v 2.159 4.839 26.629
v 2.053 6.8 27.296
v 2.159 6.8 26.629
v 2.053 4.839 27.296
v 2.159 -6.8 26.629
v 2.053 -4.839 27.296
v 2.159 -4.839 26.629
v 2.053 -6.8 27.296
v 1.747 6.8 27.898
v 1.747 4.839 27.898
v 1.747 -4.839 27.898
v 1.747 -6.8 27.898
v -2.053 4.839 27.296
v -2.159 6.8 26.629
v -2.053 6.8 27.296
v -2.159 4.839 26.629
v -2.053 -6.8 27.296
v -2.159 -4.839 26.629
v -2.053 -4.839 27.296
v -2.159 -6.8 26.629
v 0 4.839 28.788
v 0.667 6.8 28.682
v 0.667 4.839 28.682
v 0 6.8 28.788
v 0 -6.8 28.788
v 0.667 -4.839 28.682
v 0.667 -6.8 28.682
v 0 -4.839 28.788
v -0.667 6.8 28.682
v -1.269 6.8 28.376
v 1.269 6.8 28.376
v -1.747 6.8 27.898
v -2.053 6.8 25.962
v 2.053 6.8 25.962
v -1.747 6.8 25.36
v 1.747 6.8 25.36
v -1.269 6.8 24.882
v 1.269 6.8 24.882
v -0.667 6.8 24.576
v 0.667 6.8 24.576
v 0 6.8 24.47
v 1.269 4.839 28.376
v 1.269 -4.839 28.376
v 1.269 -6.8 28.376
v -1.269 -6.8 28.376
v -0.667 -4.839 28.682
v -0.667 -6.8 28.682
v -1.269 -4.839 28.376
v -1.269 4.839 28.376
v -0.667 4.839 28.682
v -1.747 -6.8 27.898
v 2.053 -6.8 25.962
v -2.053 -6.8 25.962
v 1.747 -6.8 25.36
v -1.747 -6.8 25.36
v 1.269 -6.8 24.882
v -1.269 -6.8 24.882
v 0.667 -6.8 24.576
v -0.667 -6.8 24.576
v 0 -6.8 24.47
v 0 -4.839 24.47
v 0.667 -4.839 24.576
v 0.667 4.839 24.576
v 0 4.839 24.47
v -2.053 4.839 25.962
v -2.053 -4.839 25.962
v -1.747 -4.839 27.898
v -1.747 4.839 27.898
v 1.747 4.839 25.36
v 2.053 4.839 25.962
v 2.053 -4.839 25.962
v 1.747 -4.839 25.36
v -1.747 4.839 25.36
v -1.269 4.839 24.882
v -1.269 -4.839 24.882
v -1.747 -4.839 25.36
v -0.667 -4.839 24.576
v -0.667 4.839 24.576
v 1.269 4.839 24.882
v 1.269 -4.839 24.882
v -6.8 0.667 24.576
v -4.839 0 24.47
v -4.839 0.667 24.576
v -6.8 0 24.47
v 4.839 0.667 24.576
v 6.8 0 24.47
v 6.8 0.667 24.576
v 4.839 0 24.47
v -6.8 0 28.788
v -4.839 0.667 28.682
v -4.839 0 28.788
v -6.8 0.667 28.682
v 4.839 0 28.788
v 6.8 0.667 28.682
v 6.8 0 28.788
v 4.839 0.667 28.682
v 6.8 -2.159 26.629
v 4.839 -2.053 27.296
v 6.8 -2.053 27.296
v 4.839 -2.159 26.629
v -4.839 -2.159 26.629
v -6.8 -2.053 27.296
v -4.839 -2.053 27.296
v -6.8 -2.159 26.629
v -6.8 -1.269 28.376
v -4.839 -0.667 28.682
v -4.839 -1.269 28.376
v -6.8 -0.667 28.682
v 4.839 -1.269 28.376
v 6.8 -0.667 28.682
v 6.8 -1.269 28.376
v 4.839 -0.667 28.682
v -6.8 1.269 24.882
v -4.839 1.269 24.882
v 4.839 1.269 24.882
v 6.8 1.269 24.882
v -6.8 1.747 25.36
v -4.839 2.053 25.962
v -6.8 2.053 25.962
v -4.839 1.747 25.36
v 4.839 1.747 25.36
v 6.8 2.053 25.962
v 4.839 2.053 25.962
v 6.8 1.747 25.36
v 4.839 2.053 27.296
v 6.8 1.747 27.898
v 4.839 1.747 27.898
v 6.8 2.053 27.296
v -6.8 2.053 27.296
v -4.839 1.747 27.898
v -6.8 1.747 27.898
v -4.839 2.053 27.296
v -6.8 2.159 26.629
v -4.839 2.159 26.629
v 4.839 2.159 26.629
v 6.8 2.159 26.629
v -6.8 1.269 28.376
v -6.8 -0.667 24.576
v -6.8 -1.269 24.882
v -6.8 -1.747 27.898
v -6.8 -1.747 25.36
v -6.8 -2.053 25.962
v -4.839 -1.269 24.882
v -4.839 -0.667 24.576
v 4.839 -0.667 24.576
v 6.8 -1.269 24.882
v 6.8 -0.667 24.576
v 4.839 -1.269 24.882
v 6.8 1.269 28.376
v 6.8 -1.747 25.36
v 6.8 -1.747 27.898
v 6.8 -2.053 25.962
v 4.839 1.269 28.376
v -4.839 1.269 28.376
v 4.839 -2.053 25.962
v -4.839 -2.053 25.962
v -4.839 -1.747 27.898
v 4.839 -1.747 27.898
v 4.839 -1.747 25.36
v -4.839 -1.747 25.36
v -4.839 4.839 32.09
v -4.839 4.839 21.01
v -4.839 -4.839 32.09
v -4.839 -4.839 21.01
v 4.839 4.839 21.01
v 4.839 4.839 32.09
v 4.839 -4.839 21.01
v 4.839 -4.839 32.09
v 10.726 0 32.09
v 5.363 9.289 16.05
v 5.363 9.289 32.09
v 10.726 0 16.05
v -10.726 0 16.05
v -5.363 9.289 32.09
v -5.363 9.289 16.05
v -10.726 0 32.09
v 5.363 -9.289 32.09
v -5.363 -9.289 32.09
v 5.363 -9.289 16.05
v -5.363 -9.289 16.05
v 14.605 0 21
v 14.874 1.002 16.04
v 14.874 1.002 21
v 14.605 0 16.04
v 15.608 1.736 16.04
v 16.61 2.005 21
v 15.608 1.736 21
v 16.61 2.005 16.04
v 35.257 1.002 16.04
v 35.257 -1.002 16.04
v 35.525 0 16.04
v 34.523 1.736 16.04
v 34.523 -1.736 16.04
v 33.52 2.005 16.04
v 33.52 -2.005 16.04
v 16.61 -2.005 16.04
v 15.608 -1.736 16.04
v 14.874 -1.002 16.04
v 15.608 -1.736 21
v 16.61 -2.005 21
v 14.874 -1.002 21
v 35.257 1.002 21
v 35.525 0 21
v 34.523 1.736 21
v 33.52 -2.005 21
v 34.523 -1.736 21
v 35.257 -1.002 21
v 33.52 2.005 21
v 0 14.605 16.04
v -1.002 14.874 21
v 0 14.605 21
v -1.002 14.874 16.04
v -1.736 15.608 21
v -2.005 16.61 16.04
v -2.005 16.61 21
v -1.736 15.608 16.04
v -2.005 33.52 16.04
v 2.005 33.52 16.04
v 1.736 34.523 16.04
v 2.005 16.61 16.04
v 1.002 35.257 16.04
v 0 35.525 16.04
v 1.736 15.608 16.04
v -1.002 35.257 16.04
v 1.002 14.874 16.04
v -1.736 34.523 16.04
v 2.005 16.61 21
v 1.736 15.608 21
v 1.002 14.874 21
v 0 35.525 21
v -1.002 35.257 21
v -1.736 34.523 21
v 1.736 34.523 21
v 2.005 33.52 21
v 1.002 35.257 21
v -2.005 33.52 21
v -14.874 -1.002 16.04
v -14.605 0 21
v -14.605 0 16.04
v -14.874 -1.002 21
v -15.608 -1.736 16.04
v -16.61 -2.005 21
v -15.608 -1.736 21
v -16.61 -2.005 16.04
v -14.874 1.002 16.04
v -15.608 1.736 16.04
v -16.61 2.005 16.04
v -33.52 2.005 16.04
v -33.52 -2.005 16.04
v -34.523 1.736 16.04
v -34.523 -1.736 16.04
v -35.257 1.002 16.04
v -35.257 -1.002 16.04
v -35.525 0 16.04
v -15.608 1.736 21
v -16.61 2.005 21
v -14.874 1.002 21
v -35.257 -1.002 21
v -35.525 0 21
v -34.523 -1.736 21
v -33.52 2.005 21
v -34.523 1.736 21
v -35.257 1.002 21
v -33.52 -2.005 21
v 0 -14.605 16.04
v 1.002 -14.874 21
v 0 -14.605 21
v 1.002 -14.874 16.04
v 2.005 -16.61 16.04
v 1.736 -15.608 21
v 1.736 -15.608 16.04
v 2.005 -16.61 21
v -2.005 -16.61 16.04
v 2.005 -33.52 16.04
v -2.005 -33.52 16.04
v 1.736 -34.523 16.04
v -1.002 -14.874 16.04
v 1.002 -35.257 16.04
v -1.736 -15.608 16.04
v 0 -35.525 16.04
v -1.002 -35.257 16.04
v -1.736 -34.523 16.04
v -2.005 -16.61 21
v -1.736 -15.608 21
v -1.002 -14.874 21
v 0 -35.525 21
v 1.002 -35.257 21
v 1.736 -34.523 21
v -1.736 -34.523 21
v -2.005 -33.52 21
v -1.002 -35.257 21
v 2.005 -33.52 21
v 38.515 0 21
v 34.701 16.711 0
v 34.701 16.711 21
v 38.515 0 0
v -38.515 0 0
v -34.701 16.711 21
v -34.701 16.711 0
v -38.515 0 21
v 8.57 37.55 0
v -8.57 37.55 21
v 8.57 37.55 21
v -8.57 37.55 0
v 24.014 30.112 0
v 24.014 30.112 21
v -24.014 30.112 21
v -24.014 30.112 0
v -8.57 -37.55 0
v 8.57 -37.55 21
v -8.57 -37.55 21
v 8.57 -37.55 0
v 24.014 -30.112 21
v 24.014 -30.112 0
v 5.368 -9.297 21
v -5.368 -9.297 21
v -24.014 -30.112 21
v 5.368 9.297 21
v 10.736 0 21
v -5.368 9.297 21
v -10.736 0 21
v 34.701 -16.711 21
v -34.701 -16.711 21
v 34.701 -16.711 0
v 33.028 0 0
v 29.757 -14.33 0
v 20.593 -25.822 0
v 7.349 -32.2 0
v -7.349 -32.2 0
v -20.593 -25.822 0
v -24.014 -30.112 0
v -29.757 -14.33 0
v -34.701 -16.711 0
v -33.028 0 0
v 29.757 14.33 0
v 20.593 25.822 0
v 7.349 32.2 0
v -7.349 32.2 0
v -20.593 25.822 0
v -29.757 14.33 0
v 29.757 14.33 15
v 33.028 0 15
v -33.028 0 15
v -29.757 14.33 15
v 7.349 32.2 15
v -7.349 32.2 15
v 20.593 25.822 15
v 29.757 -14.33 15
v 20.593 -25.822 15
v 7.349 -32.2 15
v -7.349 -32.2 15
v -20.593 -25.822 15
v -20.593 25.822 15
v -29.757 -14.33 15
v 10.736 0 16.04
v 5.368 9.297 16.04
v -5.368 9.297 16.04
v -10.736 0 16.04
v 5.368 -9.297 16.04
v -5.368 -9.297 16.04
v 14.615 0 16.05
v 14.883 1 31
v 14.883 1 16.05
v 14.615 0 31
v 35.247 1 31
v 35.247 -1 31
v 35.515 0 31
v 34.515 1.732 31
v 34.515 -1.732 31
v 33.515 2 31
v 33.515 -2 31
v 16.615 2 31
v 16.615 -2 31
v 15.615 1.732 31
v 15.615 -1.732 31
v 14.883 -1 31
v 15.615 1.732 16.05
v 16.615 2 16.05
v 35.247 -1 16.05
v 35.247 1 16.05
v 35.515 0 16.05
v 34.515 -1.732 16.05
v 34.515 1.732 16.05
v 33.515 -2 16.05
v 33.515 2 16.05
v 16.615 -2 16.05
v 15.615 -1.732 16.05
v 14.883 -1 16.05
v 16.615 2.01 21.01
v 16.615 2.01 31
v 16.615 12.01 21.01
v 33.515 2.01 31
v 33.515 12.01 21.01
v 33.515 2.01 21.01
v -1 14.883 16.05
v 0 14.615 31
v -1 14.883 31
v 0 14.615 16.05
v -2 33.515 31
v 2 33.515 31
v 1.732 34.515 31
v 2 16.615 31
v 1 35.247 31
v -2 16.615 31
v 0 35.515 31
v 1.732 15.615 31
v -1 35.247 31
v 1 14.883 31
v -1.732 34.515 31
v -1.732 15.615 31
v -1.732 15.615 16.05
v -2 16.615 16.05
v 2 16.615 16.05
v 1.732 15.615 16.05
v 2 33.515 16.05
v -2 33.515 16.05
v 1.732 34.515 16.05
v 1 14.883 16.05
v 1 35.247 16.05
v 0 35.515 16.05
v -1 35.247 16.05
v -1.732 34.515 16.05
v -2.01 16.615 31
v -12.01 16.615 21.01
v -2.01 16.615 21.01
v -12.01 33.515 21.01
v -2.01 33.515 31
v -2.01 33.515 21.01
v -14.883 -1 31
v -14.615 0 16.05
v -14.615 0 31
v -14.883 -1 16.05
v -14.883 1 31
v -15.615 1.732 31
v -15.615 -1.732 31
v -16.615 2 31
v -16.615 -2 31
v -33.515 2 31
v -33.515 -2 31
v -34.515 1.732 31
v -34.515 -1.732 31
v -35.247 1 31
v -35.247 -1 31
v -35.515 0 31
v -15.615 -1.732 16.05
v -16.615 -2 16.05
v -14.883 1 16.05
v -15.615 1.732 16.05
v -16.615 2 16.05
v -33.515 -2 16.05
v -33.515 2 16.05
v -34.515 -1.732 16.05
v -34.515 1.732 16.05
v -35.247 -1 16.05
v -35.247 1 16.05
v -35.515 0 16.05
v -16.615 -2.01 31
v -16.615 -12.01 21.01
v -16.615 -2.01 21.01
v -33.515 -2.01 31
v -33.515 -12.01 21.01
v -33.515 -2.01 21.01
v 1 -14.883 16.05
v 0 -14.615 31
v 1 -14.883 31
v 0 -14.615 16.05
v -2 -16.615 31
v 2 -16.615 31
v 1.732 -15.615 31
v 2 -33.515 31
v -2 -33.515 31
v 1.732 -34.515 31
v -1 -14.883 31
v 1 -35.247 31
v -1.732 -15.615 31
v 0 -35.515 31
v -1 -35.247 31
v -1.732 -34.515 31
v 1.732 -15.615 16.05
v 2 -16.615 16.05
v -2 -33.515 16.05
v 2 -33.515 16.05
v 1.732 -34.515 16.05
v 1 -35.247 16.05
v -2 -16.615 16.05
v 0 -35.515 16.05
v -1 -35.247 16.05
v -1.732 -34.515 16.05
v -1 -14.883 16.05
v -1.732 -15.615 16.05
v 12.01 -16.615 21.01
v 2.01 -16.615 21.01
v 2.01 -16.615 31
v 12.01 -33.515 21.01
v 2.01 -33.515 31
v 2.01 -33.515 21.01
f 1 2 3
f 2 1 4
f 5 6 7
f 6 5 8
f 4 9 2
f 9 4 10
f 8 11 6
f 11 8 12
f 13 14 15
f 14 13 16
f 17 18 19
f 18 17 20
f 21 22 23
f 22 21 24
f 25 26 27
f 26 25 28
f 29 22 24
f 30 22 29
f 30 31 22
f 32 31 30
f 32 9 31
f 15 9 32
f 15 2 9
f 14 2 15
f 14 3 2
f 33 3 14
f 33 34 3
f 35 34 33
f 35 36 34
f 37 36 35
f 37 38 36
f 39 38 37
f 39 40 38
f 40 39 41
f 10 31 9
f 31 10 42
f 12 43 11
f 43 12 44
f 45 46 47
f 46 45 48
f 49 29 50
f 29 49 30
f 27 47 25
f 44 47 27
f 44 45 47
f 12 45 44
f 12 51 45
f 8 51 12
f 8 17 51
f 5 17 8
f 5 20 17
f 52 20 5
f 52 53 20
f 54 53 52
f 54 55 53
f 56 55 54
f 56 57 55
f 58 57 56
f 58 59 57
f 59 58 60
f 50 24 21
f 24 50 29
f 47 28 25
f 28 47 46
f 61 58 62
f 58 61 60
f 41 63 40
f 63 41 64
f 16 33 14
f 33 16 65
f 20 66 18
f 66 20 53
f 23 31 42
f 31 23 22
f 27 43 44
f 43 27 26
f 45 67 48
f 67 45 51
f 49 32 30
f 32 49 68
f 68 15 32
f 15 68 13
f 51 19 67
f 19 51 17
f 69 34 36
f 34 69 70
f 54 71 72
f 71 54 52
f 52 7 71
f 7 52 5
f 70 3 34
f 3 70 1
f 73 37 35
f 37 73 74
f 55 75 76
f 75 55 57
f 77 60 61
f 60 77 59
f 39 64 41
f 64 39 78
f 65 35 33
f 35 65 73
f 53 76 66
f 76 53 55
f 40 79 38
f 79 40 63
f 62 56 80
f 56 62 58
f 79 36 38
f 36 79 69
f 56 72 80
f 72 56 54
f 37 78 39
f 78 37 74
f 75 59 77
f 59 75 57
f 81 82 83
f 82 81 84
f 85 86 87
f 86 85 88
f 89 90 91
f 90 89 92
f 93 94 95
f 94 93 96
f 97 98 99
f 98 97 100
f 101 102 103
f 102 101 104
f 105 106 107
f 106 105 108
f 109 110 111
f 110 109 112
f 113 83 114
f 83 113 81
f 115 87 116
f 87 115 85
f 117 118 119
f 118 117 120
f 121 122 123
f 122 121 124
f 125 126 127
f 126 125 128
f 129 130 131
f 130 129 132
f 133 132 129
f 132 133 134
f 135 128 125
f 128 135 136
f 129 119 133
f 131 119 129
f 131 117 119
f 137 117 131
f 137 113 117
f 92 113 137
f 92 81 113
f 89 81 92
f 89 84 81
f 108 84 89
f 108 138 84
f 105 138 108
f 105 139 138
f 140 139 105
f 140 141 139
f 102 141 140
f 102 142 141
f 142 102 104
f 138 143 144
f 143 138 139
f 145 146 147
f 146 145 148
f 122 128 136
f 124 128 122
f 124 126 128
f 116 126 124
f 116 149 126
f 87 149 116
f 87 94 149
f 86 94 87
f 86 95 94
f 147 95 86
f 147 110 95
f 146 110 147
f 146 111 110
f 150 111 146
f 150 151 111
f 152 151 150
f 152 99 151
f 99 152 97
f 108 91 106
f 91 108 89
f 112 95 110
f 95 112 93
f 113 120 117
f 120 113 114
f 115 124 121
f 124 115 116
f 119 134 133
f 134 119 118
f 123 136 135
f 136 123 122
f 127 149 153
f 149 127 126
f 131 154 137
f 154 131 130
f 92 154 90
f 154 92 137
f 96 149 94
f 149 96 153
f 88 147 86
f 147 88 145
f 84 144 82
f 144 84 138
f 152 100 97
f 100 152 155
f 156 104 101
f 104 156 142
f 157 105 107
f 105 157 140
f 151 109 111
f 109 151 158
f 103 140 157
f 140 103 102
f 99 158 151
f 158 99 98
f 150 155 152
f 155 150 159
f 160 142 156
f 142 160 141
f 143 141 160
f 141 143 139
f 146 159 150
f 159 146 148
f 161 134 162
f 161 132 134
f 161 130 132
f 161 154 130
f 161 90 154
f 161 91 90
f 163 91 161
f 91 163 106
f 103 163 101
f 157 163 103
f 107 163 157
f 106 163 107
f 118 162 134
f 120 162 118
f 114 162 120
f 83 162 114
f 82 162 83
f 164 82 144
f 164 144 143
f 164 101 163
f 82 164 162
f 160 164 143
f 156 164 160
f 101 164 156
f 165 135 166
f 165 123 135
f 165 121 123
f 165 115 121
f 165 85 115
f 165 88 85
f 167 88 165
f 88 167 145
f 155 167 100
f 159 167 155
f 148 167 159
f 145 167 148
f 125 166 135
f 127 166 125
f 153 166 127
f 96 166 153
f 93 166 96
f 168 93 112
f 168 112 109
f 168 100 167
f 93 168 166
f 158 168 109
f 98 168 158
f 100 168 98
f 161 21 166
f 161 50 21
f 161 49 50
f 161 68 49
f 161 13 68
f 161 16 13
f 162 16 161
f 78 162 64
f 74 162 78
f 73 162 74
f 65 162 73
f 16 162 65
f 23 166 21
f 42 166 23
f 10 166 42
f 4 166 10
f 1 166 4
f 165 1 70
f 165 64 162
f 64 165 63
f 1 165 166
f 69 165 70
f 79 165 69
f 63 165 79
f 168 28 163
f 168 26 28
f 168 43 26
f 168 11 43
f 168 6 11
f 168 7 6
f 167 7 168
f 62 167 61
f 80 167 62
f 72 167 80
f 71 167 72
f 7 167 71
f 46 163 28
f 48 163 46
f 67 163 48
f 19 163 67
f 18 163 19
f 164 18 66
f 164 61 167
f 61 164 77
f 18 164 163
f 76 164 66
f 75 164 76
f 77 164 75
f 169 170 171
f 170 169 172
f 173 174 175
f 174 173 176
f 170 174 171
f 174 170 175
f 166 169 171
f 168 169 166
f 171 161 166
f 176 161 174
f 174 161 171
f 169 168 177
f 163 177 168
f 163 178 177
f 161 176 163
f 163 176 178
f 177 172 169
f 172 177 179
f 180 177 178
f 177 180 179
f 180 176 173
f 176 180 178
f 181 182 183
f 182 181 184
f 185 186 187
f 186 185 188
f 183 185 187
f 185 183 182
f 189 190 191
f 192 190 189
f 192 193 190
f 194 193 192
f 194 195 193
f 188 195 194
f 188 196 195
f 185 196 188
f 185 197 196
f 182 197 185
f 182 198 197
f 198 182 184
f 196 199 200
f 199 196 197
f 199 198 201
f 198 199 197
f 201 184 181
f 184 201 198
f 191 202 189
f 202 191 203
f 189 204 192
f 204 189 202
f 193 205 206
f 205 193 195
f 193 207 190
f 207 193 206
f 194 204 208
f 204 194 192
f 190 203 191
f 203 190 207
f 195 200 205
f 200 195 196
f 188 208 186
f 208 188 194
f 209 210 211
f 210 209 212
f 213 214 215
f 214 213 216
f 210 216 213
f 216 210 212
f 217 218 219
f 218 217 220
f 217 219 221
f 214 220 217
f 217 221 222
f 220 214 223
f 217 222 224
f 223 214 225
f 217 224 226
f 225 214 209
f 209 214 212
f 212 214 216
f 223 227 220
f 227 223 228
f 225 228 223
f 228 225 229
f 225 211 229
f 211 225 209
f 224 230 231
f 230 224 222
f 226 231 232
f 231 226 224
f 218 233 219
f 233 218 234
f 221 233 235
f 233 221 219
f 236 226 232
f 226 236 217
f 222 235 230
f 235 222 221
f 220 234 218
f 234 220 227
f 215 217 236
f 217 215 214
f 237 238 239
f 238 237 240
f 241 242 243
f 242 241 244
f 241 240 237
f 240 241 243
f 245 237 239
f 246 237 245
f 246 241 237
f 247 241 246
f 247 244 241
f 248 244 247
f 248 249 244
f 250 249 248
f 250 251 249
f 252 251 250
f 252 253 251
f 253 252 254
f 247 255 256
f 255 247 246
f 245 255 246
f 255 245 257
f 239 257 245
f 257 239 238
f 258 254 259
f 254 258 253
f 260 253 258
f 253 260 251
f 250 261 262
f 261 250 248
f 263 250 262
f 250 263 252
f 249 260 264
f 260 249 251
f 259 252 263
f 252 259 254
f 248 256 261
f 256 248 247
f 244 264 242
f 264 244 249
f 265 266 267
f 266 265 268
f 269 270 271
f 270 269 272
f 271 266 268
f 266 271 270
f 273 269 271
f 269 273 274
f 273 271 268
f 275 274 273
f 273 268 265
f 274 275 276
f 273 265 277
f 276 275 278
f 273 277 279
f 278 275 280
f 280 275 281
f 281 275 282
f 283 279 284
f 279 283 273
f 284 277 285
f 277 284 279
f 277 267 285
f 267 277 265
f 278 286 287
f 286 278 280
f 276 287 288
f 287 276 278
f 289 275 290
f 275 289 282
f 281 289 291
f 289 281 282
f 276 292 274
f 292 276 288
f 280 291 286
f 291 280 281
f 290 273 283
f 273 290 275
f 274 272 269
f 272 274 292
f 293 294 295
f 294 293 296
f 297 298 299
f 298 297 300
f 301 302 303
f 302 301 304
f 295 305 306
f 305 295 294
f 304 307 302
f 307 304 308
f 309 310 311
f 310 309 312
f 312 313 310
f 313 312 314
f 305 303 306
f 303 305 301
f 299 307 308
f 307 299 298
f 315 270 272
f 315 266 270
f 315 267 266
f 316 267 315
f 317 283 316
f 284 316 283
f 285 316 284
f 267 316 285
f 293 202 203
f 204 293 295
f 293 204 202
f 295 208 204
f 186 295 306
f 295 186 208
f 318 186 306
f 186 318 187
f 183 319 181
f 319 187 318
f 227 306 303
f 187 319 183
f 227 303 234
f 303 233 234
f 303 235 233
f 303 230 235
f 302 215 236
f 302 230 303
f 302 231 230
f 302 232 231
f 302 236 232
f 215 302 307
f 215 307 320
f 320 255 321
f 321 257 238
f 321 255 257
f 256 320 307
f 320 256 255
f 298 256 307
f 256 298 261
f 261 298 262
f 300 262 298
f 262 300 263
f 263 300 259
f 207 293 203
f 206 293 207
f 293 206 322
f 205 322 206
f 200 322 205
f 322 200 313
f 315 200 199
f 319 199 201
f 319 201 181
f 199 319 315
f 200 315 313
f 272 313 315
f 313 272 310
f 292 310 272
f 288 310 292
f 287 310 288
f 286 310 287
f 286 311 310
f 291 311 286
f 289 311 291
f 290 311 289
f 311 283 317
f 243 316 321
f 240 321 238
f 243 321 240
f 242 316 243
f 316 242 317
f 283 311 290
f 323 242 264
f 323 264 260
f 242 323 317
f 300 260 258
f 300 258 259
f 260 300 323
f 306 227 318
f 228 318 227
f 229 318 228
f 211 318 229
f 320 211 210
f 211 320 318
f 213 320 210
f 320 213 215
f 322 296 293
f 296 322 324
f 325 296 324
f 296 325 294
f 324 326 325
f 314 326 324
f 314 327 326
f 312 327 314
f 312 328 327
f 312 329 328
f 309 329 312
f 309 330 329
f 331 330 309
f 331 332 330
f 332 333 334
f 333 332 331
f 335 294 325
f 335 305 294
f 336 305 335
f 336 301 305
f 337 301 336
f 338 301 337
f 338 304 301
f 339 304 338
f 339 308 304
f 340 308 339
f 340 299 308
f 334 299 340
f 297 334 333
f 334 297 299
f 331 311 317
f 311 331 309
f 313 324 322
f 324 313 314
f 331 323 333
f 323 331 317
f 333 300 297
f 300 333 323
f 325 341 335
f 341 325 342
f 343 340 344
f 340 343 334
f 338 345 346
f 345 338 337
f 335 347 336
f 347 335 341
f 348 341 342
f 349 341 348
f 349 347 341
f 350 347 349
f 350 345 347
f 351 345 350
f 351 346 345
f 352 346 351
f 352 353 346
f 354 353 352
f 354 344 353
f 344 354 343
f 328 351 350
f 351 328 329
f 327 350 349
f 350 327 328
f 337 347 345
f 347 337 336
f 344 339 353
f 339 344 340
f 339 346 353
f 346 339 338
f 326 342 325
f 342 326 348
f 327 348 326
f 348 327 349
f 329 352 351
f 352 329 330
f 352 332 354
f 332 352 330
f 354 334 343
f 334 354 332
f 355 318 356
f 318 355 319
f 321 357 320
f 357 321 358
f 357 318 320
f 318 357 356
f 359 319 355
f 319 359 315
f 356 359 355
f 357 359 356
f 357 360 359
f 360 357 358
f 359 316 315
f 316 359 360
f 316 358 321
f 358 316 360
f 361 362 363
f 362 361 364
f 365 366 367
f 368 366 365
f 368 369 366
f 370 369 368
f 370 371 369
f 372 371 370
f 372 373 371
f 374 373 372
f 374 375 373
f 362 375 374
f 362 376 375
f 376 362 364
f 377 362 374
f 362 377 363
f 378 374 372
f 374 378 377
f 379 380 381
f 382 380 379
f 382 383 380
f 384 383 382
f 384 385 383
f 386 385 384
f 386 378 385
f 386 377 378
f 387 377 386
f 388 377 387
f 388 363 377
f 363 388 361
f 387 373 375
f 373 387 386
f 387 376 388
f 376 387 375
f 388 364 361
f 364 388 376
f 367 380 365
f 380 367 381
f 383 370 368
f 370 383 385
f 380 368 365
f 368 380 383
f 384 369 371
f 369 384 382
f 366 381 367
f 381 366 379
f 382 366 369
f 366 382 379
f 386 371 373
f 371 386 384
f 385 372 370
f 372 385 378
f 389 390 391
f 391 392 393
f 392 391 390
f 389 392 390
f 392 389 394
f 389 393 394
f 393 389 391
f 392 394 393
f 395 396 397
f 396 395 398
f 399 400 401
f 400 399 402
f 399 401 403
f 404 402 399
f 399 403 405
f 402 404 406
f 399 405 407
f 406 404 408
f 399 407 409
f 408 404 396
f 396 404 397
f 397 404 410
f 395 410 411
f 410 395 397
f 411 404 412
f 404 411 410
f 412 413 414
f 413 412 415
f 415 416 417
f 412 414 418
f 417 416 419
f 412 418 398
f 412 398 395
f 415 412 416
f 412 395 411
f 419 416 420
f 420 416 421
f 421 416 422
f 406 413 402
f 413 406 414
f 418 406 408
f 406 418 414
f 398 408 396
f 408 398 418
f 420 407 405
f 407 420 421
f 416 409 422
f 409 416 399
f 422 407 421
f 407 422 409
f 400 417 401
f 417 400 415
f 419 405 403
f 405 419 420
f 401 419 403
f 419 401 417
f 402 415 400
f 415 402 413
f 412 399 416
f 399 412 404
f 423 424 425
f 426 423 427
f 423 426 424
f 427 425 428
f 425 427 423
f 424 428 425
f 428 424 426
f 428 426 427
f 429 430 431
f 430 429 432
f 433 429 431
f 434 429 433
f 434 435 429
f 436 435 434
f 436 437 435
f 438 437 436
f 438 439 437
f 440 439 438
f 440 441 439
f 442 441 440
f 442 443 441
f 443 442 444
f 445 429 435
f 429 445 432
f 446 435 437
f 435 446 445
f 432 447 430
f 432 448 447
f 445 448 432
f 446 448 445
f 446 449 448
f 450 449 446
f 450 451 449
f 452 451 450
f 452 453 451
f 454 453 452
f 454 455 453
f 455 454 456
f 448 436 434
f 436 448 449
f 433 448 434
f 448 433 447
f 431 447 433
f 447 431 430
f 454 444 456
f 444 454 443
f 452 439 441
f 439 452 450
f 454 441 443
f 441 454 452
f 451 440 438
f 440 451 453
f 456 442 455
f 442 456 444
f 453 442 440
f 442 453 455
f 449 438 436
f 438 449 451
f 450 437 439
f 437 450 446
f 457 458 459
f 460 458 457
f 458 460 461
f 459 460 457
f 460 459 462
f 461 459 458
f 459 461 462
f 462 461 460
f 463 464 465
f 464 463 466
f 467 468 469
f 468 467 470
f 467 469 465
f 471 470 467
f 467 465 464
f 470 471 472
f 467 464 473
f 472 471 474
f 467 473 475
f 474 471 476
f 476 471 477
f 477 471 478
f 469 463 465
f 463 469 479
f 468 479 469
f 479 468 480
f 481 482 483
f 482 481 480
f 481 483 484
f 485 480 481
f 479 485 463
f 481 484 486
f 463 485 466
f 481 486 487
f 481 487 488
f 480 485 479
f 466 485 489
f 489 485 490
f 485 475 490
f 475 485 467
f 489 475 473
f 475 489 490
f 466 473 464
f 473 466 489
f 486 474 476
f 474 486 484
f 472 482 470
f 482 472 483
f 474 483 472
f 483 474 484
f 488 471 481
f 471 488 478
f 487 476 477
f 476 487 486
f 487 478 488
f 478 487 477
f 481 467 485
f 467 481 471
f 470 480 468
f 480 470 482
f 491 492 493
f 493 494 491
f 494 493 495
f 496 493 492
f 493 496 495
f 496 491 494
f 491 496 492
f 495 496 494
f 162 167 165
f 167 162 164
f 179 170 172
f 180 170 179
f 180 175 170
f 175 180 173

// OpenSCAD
/* Version 1.0
By JP Cuzzourt 2019
Please abide by the attached CC license - no commercial use please
*/

/* [Size] */
//Diameter of filter across flats in mm
filterSize=63.4;
//How much clearance across flats? (mm)
ClearanceAF=1.0;//[0:0.1:2]
//Size of nut? (mm)
nutSize=19;
//Add 3/8" Square Drive?
squaredrive=1; // [1:yes, 0:no]
//Customizer doesn't support booleans, thus the use of 0 or 1 choice here

/* [Hidden] */

mmPerInch=25.4;
squareDrive=(squaredrive==1 && (nutSize>=15));//3/8" drive will not fit smaller than 15mm nut

//Original code was written for the full diameter, e.g. across points.
//This version lets user enter their own measurement across the flats, so we will calculate the true diameter
//assuming 14 flutes
Rc_Ri_14 = 1.02571637279; //Ratio of circumscribed to inscribed radius for 14 sided polygon
TrueDiameter=filterSize*Rc_Ri_14;

capWrench(diameter=TrueDiameter, Clearance=ClearanceAF, nut=nutSize, squareDrive=squareDrive);
epsilon =   0.01;//to prevent ambiguous surfaces
bot_thk =   1.05; //amount of material, part of thickness, that is not impaled by the structures
    
module capWrench(diameter=74, Clearance=1,
                flutes=14, thickness=6.0, top=21,
                nut=19, squareDrive=true, eps=epsilon){
      
    r1=diameter/2+thickness;            //outer radius 
    r2=(diameter + Clearance*1.0257)/2; //inner radius
    color([.75,.75,.5])
         
                    
    //cap "socket" to fit filter
    //difference will not only cut the main opening, but also opens up the 
    //holes for inserting our fittings, the nut, and finger grips
    //these recesses will cause the slicer to generate wall structures extending under the surface for much greater strength
    difference(){
        cylinder(r=r1,h=top,$fn=flutes);//main solid body
        translate([0,0,-eps])
        cylinder(r=r2,h=top-thickness+eps,$fn=flutes);//interior opening
        translate([0,0,top-thickness-eps+bot_thk]) //Leave about 1mm of bottom (bt_thk)
        cylinder(r=nut*1.129/2+eps,h=thickness-bot_thk+2*eps,$fn=6); //make a hex shaped hole to fit the nut through for strength
        grips(length=griplen+2*eps, height=root+2*eps, width=grip_w+eps, root=root, gripr=grip_x-eps, gripz=grip_z-eps, strut=false);
        //grips hole is sized slightly larger than grips by amount eps
   }
    //now let's fill that hole back in with a hex mesh, not part of the cap
    color([0,0,0]) //just for troubleshooting. Makes it easier to visualize that it's correct.
    translate([0,0,top-thickness+bot_thk])
    cylinder(r=nut*1.129/2,h=thickness-bot_thk+eps,$fn=6); //sticks out the top by eps to join solidly with the rest of the nut that we add next
    
    //https://www.engineersedge.com/hardware/square-drive-tools.htm is the source for some of my dimensions below
    //I'm trying to use values that will work with any driver that is in-spec
    //nut on top for socket or 3/8" drive
    nut_thk=11.1;
    //specs for ratchet driver end length are 
    //10.3 to 11.1 mm 
    drv_hole=0.381*mmPerInch; //(just over 3/8")
    //specs are .378"-.383" min to max
    //first attempt at .375 was too small
    Df=0.215*mmPerInch;
    //Depth of center of dimple or hole for plunger
    //Specs are .209"-.221"
    Em=0.170*mmPerInch;
    //minimum diameter for the hole to receive plunger
    Fm=0.156*mmPerInch;
    //maximum plunger ball diameter
    rNut=nut*1.129*0.99/2;
    //undersize nut flats by 1% to allow for slight
    //printer variances. Standards typically allow about a 4% downward variance here. 
    //Also, the 1.129 factor
    //is to convert flat-flat dimension to full
    //circle dimension for hexagon
    translate([0,0,top-eps])
    difference(){
    //hexagonal nut
    color([.75,.75,.75])
    cylinder(r=nut*1.129/2,h=nut_thk,$fn=6);
        if(squareDrive){
        //minus a square hole for driver
        cube([drv_hole,
              drv_hole,
              2*nut_thk+eps],
              center=true);    
        //and some dimples to accept a plunger ball
        dimples(depth1=nut_thk-Df,
                depth2=drv_hole+Fm,
                radius=Em/2);
        }
    }
    //now lets add the grips
    //first adjust the size to fit our wrench and nut dimensions
    griplen=r1-thickness/2-nut/1.3;
    root=thickness-bot_thk;
    gripht=10;
    gripend=r1-thickness/2;
    grip_x=gripend-griplen; //center x position
    grip_z=top-root;
    grip_w=4;
    grips(length=griplen, width=grip_w, height=gripht, root=root, gripr=grip_x, gripz=grip_z);
}
module grips(length=15, height=10, root=5,strut=true, width=4, gripr=18, gripz=15.1){
    
   //use a loop to make 4 of these.
    for(a=[0:90:270]){
        color([.25,.25,.5])
        rotate([0,0,a]) //a is 0,90,180,270
        translate([gripr,0,gripz])
        {
    //root=how deep the grip extends below the surface
    eps=0.01; //distance to separate or overlap meshes
    rad=width/2; //radius of rounding cylinders
    cubex=length-2*rad; //x dimension of the base grip cube
    triht=height-eps; //triangular strut height
    tribase=height; //triangular foot length
    //our strut is a Right Triangle with base tribase and height triht
    //strut is shifted up by eps so it doesn't join the top
    //and is also shifted away from the grip by eps to keep it separate
    //first a finger grip with round ends
    translate([rad,-width/2,0]) //center on x axis and leave room for cylinder
    {
    cube([cubex,width,height+root]);
    for(x=[0:cubex:cubex]) //a cylinder on each end for nice round shape
        translate([x,rad,0])
        cylinder(r=rad,h=height+root,$fn=12);
    }
    //Now add a right triangular strut is desired
    if (strut) {
    translate([rad,rad+eps,root+eps]) //align with cube and separate by eps
    rotate([0,90,0]) //correct orientation
    linear_extrude(height = cubex) //strut is just as wide as the 'square' part of our grip
    polygon(points = [ [0,0], [-triht,0], [0, tribase]]); //simple right triangle positioned to extrude and easily rotate into position
    }
    
}




       }

    }


module dimples(height=5.639,depth=13.6,radius=2.16){
    /*generates a pair of perpendicular cylinders
    that module CapWrench() uses to etch out
    depressions to accept a ball bearing plunger to
    snap the ratchet or driver male end into
    The defaults are just initial base case values
    derived from my nut sizing choices and
    available driver and socket engineering data.
    */
    for(x=[[90,0,0],[0,90,0]]){
         //[90,0,0] and [0,90,0] rotations for two perpendicular cylinders that punch hols in the sides of the square hole
    translate([0,0,height])    
    rotate(x) //rotate 90 degrees through x first time, 90 degrees through y axis the second time
    cylinder(r=radius, h=depth, center=true,$fn=20);//the ends of the cylinders will extend into the sides of the square 
        //drive opening and be subtracted out.
    }
}
